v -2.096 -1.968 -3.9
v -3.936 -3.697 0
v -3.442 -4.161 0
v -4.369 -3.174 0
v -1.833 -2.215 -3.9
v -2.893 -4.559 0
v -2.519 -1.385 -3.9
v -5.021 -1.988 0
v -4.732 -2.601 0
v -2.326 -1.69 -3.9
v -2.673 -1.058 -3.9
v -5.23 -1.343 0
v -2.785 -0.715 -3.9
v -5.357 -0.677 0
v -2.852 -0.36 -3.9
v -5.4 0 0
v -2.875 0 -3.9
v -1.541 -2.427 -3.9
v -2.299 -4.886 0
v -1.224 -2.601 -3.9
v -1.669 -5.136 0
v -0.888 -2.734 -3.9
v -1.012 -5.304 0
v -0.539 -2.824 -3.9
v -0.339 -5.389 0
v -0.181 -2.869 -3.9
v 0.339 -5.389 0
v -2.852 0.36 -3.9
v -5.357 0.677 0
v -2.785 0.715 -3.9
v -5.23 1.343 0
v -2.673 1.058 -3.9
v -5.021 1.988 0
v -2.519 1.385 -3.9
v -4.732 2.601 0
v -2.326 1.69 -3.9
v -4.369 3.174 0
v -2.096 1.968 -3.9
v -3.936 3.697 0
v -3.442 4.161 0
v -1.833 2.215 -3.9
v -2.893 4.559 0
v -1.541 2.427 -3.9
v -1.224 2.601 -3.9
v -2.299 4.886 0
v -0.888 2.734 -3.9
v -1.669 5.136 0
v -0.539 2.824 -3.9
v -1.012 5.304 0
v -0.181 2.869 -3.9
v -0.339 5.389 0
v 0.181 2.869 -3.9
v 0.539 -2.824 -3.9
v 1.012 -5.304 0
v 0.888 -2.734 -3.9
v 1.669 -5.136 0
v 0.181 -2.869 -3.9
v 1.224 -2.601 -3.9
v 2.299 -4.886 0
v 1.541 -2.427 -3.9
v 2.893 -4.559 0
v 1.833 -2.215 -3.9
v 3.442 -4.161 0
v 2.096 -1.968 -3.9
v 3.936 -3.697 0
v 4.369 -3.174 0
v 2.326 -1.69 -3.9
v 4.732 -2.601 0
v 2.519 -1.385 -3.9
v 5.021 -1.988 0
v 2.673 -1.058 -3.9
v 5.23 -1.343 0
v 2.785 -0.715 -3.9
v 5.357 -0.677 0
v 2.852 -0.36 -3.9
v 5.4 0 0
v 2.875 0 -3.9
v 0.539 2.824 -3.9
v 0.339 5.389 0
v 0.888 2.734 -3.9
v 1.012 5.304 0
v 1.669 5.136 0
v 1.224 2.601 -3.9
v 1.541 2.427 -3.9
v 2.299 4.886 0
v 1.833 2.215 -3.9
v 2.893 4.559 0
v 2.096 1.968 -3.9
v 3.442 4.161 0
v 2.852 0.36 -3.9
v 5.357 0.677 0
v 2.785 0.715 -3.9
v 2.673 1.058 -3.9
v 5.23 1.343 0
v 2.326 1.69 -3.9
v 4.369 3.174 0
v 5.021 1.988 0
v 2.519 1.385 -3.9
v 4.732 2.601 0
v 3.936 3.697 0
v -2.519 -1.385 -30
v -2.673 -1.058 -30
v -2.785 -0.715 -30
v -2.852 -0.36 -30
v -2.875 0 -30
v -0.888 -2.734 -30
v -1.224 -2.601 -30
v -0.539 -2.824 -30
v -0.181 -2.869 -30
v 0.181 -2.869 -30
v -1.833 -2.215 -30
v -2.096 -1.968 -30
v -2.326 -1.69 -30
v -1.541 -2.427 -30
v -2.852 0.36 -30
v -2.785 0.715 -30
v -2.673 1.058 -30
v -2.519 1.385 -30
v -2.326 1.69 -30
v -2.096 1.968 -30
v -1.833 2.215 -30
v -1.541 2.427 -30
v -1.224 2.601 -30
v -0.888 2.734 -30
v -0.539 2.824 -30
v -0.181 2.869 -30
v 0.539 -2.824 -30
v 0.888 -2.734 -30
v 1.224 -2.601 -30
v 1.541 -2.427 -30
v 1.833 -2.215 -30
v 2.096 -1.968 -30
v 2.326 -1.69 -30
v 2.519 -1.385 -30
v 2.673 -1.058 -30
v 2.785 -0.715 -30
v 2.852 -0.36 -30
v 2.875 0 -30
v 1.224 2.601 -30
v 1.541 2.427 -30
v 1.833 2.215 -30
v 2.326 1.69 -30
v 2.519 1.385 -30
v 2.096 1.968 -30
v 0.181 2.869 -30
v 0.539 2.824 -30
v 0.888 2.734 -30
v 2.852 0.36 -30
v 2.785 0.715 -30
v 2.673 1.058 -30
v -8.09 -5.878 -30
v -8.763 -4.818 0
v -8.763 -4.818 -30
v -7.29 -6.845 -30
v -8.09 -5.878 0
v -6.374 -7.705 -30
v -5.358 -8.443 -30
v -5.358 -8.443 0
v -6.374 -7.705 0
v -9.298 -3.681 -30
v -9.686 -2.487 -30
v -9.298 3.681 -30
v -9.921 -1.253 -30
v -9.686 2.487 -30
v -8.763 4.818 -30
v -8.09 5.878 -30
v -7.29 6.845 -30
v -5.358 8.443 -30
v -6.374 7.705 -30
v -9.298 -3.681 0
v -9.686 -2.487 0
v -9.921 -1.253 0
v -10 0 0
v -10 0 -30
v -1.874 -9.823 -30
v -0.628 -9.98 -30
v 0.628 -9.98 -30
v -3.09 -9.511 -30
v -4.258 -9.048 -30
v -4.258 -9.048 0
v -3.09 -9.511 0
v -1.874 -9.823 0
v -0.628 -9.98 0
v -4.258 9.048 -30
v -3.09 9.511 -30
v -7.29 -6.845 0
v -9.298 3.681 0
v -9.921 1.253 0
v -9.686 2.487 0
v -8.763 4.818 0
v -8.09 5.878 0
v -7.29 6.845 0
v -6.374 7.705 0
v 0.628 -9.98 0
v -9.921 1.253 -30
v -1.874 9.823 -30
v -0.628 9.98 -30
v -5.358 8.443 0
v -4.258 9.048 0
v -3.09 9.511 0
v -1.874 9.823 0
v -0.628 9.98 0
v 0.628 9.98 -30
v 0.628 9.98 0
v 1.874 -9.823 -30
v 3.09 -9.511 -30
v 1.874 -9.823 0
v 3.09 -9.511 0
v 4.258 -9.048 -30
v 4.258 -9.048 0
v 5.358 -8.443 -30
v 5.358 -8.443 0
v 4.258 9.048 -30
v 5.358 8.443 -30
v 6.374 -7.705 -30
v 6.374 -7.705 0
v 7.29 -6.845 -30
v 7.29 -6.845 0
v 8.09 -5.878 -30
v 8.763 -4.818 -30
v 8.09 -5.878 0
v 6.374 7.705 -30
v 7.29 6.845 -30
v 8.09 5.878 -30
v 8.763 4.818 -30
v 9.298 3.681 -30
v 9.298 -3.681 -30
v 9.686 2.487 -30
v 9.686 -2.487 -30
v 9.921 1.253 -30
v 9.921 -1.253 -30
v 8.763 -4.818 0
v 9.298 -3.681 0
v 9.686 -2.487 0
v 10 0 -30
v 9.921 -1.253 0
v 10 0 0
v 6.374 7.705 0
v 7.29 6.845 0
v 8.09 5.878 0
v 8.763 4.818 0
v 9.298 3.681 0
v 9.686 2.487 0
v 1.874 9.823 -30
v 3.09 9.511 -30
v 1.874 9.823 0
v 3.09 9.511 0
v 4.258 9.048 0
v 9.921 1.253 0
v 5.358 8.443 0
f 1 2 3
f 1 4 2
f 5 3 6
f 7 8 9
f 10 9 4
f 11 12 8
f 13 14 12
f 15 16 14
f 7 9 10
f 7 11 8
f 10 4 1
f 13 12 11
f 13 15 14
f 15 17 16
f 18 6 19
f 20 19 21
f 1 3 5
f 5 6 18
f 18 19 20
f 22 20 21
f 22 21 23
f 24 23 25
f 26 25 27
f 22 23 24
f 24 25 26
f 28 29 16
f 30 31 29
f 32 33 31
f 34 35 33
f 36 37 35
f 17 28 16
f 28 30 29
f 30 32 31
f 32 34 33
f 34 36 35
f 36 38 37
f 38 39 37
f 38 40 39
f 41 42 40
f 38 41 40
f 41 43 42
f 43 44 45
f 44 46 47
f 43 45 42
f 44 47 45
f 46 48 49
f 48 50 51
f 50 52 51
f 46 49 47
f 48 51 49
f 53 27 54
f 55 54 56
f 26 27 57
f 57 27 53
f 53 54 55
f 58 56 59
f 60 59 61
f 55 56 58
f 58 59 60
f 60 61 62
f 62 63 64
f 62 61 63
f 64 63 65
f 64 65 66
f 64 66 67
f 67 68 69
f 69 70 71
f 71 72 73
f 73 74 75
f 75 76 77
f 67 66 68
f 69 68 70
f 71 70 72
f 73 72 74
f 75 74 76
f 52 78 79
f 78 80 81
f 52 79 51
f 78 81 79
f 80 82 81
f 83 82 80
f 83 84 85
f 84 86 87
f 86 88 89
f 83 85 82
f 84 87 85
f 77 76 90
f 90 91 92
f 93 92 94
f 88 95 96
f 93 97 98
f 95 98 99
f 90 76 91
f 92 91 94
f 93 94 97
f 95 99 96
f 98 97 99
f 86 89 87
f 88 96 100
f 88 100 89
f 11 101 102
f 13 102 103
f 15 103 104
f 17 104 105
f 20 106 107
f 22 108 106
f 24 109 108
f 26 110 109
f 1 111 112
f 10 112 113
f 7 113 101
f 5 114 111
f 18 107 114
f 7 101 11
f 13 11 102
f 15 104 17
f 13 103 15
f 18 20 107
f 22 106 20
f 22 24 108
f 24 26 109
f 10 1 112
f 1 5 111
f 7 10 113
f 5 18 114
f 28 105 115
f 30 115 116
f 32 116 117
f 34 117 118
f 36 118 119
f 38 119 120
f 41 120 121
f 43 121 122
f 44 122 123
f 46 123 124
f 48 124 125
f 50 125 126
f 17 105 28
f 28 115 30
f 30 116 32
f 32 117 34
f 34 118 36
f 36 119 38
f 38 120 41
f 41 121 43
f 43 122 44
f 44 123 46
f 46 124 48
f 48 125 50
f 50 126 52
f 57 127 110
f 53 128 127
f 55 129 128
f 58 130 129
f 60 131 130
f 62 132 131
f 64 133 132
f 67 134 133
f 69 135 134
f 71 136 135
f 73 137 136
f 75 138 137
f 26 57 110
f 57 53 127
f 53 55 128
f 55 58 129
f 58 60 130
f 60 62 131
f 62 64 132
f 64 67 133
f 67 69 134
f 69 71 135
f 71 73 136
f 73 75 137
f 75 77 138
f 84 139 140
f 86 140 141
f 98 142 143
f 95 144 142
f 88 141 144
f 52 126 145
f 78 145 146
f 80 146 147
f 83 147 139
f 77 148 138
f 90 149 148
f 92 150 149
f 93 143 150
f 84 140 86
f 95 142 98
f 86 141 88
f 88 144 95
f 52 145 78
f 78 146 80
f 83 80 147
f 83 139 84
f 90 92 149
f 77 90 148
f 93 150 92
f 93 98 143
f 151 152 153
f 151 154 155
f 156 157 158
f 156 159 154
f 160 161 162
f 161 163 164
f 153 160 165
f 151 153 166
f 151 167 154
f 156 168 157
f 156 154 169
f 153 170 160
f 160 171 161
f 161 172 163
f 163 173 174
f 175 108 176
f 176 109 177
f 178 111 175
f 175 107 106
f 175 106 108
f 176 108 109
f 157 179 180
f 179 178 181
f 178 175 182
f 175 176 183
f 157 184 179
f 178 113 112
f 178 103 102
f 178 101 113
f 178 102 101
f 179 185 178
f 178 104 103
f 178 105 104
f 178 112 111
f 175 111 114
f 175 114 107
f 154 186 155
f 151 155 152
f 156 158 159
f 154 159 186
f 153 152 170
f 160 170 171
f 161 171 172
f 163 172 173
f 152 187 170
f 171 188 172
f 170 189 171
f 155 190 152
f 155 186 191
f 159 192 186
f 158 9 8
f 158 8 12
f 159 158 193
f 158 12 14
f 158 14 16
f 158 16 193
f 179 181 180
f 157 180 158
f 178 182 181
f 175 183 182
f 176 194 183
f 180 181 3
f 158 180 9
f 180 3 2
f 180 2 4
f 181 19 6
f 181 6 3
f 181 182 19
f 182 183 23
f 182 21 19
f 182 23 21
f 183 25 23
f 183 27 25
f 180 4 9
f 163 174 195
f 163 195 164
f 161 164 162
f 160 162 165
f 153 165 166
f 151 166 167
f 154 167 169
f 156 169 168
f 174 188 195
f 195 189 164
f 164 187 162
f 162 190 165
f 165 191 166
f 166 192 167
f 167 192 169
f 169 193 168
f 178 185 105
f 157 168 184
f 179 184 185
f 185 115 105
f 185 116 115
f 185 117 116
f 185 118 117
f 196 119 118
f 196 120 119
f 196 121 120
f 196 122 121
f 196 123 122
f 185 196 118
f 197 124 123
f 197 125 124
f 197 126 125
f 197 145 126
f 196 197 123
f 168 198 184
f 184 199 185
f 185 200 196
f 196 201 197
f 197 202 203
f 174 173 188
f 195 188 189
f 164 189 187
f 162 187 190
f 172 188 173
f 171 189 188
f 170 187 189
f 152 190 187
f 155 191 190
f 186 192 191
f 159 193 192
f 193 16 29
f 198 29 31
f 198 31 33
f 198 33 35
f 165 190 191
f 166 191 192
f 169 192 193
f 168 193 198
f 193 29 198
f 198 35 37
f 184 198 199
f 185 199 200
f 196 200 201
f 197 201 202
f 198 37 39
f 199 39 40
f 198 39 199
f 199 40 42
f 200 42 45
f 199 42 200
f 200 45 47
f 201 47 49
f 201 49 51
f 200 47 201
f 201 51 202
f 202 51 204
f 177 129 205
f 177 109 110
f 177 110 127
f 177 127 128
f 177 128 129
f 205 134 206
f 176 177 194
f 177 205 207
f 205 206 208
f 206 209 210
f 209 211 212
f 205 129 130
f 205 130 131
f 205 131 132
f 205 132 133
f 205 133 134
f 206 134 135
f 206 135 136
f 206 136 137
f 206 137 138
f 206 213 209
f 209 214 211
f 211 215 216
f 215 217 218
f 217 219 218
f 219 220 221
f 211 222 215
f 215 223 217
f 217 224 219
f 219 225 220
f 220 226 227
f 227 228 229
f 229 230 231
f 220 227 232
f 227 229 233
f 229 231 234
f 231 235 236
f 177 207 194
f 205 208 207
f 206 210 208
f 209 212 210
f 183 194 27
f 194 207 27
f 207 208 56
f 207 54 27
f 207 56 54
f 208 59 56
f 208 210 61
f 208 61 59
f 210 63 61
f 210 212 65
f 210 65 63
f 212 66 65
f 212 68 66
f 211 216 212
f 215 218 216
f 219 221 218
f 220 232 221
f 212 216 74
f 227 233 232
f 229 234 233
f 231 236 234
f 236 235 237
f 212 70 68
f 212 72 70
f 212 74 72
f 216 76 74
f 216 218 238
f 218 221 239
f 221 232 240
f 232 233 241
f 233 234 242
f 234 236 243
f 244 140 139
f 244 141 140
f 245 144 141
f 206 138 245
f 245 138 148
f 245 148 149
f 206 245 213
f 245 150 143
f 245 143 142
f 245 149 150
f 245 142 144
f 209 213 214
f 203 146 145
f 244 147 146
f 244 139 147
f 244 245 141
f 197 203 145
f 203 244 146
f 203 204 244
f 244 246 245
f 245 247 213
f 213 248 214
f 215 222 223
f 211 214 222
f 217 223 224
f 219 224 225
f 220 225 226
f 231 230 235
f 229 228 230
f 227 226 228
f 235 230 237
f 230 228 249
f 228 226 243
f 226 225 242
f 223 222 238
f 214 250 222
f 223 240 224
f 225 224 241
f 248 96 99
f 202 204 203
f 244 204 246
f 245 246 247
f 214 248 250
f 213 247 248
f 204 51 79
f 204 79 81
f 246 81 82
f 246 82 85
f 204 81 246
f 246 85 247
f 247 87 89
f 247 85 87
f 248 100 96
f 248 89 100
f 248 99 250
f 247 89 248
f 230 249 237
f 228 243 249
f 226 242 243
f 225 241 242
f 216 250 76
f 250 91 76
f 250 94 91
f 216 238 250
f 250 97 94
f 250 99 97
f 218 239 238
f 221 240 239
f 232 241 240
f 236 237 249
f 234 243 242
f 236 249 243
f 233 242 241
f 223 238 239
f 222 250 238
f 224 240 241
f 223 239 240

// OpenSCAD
$fn = 50;

difference() {
	union() {
		translate(v = [0, 0, -30.0]) {
			cylinder(h = 30, r = 10.0);
		}
	}
	union() {
		translate(v = [0, 0, 0]) {
			rotate(a = [0, 0, 0]) {
				difference() {
					union() {
						translate(v = [0, 0, -33.0]) {
							cylinder(h = 33, r = 2.6);
						}
						translate(v = [0, 0, -3.9]) {
							cylinder(h = 3.9, r1 = 2.875, r2 = 5.4);
						}
						translate(v = [0, 0, -33.0]) {
							cylinder(h = 33, r = 2.875);
						}
						translate(v = [0, 0, -33.0]) {
							cylinder(h = 33, r = 2.6);
						}
					}
					union();
				}
			}
		}
	}
}
